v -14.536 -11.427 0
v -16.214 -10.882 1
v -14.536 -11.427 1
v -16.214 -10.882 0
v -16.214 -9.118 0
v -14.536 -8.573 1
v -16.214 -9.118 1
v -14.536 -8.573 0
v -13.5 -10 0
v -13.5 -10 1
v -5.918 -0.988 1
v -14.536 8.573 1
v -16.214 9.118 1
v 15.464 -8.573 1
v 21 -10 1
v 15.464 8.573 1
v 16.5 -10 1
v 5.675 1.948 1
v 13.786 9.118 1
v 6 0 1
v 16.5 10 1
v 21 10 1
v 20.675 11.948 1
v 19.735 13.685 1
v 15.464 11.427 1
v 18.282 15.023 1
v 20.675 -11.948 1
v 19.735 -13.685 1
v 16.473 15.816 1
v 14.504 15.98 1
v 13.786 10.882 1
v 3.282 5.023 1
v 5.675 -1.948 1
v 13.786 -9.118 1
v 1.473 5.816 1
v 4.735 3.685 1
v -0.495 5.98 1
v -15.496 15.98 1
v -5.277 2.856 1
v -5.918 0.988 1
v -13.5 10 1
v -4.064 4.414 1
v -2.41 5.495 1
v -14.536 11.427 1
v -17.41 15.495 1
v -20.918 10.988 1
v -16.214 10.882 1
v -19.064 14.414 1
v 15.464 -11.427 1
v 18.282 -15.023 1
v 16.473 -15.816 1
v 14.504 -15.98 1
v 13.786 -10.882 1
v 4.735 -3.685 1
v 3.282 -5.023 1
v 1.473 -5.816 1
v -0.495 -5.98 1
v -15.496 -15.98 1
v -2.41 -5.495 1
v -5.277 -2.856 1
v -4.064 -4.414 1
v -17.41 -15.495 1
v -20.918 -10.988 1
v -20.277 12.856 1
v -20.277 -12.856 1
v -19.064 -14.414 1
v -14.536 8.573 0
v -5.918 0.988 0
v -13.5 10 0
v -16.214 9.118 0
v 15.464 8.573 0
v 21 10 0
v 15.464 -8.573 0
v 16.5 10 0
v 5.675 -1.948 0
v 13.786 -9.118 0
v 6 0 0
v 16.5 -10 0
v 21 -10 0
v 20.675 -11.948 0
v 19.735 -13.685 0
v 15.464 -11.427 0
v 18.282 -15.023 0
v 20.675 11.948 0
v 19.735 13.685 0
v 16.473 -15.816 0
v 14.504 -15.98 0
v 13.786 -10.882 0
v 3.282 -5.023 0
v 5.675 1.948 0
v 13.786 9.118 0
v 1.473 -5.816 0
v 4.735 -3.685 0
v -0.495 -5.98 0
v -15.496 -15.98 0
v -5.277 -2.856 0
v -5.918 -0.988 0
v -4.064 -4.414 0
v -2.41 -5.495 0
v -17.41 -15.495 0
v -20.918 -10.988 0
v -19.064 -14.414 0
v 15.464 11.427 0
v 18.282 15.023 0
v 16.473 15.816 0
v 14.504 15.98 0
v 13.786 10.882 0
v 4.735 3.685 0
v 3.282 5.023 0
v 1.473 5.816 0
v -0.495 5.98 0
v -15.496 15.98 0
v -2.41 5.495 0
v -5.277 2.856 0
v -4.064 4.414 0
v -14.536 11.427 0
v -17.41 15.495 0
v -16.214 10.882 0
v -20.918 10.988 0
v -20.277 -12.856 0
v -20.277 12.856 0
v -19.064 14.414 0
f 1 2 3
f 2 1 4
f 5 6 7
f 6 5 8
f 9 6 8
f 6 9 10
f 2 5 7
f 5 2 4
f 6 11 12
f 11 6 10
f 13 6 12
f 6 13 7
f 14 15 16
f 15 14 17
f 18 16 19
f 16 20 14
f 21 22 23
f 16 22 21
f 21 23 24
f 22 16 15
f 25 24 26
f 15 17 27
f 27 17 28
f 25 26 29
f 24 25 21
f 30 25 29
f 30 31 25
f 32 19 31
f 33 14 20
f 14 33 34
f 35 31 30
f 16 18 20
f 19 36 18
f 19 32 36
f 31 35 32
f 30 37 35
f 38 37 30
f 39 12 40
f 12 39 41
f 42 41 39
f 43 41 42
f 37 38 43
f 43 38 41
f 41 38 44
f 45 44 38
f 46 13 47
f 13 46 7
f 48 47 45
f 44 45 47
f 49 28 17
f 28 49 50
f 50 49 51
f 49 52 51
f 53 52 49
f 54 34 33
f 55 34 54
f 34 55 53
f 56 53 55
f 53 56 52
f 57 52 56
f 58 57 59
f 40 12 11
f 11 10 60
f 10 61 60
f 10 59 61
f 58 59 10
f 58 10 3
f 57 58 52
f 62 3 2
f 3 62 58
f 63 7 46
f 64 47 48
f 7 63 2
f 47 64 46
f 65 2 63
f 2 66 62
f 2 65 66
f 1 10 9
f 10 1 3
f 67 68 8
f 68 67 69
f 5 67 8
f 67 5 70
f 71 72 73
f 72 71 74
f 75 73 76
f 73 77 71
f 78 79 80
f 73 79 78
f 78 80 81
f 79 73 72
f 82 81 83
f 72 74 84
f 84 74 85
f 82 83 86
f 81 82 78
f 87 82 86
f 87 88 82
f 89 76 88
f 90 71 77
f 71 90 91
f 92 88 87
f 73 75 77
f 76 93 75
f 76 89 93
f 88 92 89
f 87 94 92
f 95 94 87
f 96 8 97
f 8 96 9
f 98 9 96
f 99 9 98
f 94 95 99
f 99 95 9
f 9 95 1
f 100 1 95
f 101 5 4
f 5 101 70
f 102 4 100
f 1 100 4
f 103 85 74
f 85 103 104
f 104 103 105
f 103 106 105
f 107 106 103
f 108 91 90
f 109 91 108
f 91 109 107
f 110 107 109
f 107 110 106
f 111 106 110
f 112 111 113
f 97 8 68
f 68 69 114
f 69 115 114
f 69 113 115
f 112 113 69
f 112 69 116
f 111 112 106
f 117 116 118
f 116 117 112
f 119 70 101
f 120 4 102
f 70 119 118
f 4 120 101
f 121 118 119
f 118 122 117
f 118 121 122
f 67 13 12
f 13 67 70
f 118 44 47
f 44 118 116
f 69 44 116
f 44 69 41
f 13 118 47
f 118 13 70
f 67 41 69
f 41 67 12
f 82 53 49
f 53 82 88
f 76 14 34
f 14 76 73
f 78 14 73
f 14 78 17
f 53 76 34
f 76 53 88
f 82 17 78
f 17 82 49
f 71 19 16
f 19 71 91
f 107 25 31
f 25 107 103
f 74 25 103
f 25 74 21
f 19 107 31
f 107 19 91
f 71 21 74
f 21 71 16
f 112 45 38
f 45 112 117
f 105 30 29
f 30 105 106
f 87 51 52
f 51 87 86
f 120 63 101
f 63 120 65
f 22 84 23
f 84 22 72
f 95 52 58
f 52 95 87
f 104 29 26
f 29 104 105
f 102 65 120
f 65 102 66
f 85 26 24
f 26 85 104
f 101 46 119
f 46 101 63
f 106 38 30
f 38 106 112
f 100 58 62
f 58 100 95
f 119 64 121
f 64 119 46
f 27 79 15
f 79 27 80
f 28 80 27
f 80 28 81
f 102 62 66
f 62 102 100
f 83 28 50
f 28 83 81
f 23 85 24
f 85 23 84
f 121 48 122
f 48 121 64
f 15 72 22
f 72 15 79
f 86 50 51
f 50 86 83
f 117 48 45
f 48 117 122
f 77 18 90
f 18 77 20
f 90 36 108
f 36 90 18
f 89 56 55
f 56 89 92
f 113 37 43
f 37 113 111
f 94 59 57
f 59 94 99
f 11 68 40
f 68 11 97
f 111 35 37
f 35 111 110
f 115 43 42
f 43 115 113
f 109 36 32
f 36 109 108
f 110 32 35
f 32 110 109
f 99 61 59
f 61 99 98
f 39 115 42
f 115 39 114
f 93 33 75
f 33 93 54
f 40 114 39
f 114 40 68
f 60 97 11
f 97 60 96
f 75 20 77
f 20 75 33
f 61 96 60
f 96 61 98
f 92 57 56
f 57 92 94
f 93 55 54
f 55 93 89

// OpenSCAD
H=1;
module main() {
    difference() {
        hull() {
            for (i=[-1,1]) {
                for (j=[-1,1]) {
                    translate([15*i,10*j,0]) cylinder(H,r=6);
                }
            }
        }
        #cylinder(H,d=12);
        for (i=[-1,1]) {
            for (j=[-1,1]) {
                #translate([15*i,10*j,0]) cylinder(H,d=3);
            }
        }
    }
}

module main2() {
    difference() {
        cube([60,50,H]);
        translate([30,30,0]) cylinder(H,d=26);
        #translate([15,4,0]) cube([26,12,H]);
    }
}

main();
